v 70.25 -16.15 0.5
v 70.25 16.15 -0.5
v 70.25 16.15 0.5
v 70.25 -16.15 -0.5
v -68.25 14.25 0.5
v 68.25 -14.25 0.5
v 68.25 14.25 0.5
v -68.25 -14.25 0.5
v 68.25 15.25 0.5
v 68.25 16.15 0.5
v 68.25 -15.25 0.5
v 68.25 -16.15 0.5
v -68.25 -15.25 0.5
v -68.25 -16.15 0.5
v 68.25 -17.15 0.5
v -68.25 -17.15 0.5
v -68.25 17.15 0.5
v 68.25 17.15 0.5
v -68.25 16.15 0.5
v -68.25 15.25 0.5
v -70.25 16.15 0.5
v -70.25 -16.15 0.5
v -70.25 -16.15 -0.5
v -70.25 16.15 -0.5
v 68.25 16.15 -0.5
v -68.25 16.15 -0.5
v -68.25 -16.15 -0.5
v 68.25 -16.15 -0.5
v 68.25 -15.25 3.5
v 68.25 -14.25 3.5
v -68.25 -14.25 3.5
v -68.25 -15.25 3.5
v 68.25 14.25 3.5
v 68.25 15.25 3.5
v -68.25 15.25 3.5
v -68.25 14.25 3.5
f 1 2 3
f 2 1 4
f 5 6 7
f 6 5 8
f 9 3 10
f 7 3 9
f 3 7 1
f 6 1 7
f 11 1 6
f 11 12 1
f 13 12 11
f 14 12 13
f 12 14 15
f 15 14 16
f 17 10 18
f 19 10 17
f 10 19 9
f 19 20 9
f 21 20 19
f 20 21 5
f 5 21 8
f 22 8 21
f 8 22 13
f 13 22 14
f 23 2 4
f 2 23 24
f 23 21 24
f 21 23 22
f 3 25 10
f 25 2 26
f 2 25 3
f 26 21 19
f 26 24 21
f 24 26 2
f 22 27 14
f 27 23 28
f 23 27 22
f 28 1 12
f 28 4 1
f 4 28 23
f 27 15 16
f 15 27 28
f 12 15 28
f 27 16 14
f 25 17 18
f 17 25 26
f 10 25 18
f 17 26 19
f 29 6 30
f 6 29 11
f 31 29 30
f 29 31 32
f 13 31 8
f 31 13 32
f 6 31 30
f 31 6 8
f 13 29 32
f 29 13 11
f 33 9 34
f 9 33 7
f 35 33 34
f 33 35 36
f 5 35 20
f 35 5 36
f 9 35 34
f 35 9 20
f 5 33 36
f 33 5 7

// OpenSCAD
// file: mod_prism.scad
/// @file mod_prism.scad
///
/// @author © Dave Harris 2022
///

// points   1        ^
//        / | \      |
//       /  4  \     h
//      /  / \  \    |
//     0--/---\--2   v
//   w | /     \ | 
//     3---------5
//     <lLH><lRH>


module prism(h=20, lLH=15, lRH=25, w=1)
{
 polyhedron(
  points=[
   [0, 0, 0]       // 0 back LH corner
  ,[lLH, h, 0]     // 1 back peak
  ,[lLH+lRH, 0, 0] // 2 back RH corner
  ,[0, 0, w]       // 3 front LH corner
  ,[lLH, h, w]     // 4 front peak
  ,[lLH+lRH, 0, w] // 5 front RH corner
  ]
  , faces=[
    [0, 3, 5, 2] // bottom
   ,[0, 1, 4, 3] // LH ramp
   ,[1, 2, 5, 4] // RH ramp 
   ,[2, 1, 0]    // back wall
   ,[3, 4, 5]    // front wall
   ]
 );
} // end of module prism()

// local test prism
prism(lLH=1, lRH= 22, h=18, w=1 );

// eof
// file: fb_globals.scad
/// @file fb_globals.scad
///
/// @brief project footbridge globals
///
/// @author © Dave Harris 2022
///
/// Included in all project files.


$fa = 1;   // Fragment angle
$fs = 0.4; // Fragment size resolution

// global constants
//------------------

H_canopy = 47;

H_bridge = 49.5; // platform<>bridge
W_bridge = 36;   // width of bridge
                 // > walkway
W_walk   = 34.5; // width
H_walk   = 36;   // height of walkway


Steps    = 27;   // number of steps
W_stairs = 32;   // width ~ 9'6" @ H0
L_tread  = 3.5;  // tread ~ 12" @ H0
L_stairs = L_tread * (Steps +1);
H_rise   = H_bridge / (Steps +1); 
  // rise is 1.7678, not H0 1.75 (6")

W_lift   = 34;

W_build  = W_stairs +2;
L_build  = L_stairs+W_bridge+W_lift +2;

W_pillar = 4;

L_spacing = L_build /2;

Spans = 6;

L_canopy = ((Spans -1) * L_spacing) + W_pillar;

echo("len",L_canopy);

H_door   = 28;
W_door   = 18;

H_window = 6;
W_window = 16;


W_plat45  = 93.9;
W_track34 = 87.9;
W_plat23  = 93.8;
W_track12 = 87.9;

W_plat23edge =
   ( W_plat23 - W_stairs +2 ) /2 ;
W_plat45edge =
   ( W_plat45 - W_stairs +2 ) /2 ;
   
L_span34 = W_track34 + W_plat45edge + W_plat23edge;

L_span12 = 136.5;

W_grider = 2.2;

W_LEDstrip = 7.5;



// eof
// main file
/// @file fb_span12Floor.scad
///
/// @brief footbridge span 1/2 floor
///
/// @author © Dave Harris 2022
///

include<fb_globals.scad>

use<mod_prism.scad>


spanFloor( L_span12
         , W_walk -0.2
         , W_girder = 1.9
         );

//color( "blue" // show centerline
//) cube(
//    [ L_span12 +4.1
//    , W_walk -0.2
//    , 0.0001 ], center=true
//  );



module spanFloor( length
                , width
                , W_girder = 2.2
                , W_tab    = 1.0
                , H_tab    = 3.0
                , thick    = 1.0
                , endHang  = 2.0
       )
{
  echo("span12Floor", length, width );


    cube(  // floor plate
      [ length + (endHang *2)
      , width - (thick *2) +0.001
      , thick  ], center = true
    );

    translate(  // chamfer edge 1
      [ -(length /2)
      , thick - (width /2)
      , -(thick /2)  ]
    ) rotate(
        [ 90
        , -90
        , 90  ]
      ) prism(
            lLH = thick
          , lRH = 0
          , w =   length
          , h =   thick
        );

    translate(  // chamfer edge 2
      [ -(length /2)
      , (width /2)
      , (thick /2)  ]
    ) rotate(
        [ 90
        , 180
        , 90  ]
      ) prism(
            lLH = thick
          , lRH = 0
          , w =   length
          , h =   thick
        );

    translate( // side tab support 1
      [ -(length /2)
      , -(width /2) + W_girder
      , -(thick /2)  ]
    ) cube(
        [ length
        , W_tab
        , thick + H_tab  ]
      );

    translate( // side tab support 2
      [ -(length /2)
      , (width /2) - W_girder - W_tab
      , -(thick /2)  ]
    ) cube(
        [ length
        , W_tab
        , thick + H_tab  ]
      );
}


// eof   
